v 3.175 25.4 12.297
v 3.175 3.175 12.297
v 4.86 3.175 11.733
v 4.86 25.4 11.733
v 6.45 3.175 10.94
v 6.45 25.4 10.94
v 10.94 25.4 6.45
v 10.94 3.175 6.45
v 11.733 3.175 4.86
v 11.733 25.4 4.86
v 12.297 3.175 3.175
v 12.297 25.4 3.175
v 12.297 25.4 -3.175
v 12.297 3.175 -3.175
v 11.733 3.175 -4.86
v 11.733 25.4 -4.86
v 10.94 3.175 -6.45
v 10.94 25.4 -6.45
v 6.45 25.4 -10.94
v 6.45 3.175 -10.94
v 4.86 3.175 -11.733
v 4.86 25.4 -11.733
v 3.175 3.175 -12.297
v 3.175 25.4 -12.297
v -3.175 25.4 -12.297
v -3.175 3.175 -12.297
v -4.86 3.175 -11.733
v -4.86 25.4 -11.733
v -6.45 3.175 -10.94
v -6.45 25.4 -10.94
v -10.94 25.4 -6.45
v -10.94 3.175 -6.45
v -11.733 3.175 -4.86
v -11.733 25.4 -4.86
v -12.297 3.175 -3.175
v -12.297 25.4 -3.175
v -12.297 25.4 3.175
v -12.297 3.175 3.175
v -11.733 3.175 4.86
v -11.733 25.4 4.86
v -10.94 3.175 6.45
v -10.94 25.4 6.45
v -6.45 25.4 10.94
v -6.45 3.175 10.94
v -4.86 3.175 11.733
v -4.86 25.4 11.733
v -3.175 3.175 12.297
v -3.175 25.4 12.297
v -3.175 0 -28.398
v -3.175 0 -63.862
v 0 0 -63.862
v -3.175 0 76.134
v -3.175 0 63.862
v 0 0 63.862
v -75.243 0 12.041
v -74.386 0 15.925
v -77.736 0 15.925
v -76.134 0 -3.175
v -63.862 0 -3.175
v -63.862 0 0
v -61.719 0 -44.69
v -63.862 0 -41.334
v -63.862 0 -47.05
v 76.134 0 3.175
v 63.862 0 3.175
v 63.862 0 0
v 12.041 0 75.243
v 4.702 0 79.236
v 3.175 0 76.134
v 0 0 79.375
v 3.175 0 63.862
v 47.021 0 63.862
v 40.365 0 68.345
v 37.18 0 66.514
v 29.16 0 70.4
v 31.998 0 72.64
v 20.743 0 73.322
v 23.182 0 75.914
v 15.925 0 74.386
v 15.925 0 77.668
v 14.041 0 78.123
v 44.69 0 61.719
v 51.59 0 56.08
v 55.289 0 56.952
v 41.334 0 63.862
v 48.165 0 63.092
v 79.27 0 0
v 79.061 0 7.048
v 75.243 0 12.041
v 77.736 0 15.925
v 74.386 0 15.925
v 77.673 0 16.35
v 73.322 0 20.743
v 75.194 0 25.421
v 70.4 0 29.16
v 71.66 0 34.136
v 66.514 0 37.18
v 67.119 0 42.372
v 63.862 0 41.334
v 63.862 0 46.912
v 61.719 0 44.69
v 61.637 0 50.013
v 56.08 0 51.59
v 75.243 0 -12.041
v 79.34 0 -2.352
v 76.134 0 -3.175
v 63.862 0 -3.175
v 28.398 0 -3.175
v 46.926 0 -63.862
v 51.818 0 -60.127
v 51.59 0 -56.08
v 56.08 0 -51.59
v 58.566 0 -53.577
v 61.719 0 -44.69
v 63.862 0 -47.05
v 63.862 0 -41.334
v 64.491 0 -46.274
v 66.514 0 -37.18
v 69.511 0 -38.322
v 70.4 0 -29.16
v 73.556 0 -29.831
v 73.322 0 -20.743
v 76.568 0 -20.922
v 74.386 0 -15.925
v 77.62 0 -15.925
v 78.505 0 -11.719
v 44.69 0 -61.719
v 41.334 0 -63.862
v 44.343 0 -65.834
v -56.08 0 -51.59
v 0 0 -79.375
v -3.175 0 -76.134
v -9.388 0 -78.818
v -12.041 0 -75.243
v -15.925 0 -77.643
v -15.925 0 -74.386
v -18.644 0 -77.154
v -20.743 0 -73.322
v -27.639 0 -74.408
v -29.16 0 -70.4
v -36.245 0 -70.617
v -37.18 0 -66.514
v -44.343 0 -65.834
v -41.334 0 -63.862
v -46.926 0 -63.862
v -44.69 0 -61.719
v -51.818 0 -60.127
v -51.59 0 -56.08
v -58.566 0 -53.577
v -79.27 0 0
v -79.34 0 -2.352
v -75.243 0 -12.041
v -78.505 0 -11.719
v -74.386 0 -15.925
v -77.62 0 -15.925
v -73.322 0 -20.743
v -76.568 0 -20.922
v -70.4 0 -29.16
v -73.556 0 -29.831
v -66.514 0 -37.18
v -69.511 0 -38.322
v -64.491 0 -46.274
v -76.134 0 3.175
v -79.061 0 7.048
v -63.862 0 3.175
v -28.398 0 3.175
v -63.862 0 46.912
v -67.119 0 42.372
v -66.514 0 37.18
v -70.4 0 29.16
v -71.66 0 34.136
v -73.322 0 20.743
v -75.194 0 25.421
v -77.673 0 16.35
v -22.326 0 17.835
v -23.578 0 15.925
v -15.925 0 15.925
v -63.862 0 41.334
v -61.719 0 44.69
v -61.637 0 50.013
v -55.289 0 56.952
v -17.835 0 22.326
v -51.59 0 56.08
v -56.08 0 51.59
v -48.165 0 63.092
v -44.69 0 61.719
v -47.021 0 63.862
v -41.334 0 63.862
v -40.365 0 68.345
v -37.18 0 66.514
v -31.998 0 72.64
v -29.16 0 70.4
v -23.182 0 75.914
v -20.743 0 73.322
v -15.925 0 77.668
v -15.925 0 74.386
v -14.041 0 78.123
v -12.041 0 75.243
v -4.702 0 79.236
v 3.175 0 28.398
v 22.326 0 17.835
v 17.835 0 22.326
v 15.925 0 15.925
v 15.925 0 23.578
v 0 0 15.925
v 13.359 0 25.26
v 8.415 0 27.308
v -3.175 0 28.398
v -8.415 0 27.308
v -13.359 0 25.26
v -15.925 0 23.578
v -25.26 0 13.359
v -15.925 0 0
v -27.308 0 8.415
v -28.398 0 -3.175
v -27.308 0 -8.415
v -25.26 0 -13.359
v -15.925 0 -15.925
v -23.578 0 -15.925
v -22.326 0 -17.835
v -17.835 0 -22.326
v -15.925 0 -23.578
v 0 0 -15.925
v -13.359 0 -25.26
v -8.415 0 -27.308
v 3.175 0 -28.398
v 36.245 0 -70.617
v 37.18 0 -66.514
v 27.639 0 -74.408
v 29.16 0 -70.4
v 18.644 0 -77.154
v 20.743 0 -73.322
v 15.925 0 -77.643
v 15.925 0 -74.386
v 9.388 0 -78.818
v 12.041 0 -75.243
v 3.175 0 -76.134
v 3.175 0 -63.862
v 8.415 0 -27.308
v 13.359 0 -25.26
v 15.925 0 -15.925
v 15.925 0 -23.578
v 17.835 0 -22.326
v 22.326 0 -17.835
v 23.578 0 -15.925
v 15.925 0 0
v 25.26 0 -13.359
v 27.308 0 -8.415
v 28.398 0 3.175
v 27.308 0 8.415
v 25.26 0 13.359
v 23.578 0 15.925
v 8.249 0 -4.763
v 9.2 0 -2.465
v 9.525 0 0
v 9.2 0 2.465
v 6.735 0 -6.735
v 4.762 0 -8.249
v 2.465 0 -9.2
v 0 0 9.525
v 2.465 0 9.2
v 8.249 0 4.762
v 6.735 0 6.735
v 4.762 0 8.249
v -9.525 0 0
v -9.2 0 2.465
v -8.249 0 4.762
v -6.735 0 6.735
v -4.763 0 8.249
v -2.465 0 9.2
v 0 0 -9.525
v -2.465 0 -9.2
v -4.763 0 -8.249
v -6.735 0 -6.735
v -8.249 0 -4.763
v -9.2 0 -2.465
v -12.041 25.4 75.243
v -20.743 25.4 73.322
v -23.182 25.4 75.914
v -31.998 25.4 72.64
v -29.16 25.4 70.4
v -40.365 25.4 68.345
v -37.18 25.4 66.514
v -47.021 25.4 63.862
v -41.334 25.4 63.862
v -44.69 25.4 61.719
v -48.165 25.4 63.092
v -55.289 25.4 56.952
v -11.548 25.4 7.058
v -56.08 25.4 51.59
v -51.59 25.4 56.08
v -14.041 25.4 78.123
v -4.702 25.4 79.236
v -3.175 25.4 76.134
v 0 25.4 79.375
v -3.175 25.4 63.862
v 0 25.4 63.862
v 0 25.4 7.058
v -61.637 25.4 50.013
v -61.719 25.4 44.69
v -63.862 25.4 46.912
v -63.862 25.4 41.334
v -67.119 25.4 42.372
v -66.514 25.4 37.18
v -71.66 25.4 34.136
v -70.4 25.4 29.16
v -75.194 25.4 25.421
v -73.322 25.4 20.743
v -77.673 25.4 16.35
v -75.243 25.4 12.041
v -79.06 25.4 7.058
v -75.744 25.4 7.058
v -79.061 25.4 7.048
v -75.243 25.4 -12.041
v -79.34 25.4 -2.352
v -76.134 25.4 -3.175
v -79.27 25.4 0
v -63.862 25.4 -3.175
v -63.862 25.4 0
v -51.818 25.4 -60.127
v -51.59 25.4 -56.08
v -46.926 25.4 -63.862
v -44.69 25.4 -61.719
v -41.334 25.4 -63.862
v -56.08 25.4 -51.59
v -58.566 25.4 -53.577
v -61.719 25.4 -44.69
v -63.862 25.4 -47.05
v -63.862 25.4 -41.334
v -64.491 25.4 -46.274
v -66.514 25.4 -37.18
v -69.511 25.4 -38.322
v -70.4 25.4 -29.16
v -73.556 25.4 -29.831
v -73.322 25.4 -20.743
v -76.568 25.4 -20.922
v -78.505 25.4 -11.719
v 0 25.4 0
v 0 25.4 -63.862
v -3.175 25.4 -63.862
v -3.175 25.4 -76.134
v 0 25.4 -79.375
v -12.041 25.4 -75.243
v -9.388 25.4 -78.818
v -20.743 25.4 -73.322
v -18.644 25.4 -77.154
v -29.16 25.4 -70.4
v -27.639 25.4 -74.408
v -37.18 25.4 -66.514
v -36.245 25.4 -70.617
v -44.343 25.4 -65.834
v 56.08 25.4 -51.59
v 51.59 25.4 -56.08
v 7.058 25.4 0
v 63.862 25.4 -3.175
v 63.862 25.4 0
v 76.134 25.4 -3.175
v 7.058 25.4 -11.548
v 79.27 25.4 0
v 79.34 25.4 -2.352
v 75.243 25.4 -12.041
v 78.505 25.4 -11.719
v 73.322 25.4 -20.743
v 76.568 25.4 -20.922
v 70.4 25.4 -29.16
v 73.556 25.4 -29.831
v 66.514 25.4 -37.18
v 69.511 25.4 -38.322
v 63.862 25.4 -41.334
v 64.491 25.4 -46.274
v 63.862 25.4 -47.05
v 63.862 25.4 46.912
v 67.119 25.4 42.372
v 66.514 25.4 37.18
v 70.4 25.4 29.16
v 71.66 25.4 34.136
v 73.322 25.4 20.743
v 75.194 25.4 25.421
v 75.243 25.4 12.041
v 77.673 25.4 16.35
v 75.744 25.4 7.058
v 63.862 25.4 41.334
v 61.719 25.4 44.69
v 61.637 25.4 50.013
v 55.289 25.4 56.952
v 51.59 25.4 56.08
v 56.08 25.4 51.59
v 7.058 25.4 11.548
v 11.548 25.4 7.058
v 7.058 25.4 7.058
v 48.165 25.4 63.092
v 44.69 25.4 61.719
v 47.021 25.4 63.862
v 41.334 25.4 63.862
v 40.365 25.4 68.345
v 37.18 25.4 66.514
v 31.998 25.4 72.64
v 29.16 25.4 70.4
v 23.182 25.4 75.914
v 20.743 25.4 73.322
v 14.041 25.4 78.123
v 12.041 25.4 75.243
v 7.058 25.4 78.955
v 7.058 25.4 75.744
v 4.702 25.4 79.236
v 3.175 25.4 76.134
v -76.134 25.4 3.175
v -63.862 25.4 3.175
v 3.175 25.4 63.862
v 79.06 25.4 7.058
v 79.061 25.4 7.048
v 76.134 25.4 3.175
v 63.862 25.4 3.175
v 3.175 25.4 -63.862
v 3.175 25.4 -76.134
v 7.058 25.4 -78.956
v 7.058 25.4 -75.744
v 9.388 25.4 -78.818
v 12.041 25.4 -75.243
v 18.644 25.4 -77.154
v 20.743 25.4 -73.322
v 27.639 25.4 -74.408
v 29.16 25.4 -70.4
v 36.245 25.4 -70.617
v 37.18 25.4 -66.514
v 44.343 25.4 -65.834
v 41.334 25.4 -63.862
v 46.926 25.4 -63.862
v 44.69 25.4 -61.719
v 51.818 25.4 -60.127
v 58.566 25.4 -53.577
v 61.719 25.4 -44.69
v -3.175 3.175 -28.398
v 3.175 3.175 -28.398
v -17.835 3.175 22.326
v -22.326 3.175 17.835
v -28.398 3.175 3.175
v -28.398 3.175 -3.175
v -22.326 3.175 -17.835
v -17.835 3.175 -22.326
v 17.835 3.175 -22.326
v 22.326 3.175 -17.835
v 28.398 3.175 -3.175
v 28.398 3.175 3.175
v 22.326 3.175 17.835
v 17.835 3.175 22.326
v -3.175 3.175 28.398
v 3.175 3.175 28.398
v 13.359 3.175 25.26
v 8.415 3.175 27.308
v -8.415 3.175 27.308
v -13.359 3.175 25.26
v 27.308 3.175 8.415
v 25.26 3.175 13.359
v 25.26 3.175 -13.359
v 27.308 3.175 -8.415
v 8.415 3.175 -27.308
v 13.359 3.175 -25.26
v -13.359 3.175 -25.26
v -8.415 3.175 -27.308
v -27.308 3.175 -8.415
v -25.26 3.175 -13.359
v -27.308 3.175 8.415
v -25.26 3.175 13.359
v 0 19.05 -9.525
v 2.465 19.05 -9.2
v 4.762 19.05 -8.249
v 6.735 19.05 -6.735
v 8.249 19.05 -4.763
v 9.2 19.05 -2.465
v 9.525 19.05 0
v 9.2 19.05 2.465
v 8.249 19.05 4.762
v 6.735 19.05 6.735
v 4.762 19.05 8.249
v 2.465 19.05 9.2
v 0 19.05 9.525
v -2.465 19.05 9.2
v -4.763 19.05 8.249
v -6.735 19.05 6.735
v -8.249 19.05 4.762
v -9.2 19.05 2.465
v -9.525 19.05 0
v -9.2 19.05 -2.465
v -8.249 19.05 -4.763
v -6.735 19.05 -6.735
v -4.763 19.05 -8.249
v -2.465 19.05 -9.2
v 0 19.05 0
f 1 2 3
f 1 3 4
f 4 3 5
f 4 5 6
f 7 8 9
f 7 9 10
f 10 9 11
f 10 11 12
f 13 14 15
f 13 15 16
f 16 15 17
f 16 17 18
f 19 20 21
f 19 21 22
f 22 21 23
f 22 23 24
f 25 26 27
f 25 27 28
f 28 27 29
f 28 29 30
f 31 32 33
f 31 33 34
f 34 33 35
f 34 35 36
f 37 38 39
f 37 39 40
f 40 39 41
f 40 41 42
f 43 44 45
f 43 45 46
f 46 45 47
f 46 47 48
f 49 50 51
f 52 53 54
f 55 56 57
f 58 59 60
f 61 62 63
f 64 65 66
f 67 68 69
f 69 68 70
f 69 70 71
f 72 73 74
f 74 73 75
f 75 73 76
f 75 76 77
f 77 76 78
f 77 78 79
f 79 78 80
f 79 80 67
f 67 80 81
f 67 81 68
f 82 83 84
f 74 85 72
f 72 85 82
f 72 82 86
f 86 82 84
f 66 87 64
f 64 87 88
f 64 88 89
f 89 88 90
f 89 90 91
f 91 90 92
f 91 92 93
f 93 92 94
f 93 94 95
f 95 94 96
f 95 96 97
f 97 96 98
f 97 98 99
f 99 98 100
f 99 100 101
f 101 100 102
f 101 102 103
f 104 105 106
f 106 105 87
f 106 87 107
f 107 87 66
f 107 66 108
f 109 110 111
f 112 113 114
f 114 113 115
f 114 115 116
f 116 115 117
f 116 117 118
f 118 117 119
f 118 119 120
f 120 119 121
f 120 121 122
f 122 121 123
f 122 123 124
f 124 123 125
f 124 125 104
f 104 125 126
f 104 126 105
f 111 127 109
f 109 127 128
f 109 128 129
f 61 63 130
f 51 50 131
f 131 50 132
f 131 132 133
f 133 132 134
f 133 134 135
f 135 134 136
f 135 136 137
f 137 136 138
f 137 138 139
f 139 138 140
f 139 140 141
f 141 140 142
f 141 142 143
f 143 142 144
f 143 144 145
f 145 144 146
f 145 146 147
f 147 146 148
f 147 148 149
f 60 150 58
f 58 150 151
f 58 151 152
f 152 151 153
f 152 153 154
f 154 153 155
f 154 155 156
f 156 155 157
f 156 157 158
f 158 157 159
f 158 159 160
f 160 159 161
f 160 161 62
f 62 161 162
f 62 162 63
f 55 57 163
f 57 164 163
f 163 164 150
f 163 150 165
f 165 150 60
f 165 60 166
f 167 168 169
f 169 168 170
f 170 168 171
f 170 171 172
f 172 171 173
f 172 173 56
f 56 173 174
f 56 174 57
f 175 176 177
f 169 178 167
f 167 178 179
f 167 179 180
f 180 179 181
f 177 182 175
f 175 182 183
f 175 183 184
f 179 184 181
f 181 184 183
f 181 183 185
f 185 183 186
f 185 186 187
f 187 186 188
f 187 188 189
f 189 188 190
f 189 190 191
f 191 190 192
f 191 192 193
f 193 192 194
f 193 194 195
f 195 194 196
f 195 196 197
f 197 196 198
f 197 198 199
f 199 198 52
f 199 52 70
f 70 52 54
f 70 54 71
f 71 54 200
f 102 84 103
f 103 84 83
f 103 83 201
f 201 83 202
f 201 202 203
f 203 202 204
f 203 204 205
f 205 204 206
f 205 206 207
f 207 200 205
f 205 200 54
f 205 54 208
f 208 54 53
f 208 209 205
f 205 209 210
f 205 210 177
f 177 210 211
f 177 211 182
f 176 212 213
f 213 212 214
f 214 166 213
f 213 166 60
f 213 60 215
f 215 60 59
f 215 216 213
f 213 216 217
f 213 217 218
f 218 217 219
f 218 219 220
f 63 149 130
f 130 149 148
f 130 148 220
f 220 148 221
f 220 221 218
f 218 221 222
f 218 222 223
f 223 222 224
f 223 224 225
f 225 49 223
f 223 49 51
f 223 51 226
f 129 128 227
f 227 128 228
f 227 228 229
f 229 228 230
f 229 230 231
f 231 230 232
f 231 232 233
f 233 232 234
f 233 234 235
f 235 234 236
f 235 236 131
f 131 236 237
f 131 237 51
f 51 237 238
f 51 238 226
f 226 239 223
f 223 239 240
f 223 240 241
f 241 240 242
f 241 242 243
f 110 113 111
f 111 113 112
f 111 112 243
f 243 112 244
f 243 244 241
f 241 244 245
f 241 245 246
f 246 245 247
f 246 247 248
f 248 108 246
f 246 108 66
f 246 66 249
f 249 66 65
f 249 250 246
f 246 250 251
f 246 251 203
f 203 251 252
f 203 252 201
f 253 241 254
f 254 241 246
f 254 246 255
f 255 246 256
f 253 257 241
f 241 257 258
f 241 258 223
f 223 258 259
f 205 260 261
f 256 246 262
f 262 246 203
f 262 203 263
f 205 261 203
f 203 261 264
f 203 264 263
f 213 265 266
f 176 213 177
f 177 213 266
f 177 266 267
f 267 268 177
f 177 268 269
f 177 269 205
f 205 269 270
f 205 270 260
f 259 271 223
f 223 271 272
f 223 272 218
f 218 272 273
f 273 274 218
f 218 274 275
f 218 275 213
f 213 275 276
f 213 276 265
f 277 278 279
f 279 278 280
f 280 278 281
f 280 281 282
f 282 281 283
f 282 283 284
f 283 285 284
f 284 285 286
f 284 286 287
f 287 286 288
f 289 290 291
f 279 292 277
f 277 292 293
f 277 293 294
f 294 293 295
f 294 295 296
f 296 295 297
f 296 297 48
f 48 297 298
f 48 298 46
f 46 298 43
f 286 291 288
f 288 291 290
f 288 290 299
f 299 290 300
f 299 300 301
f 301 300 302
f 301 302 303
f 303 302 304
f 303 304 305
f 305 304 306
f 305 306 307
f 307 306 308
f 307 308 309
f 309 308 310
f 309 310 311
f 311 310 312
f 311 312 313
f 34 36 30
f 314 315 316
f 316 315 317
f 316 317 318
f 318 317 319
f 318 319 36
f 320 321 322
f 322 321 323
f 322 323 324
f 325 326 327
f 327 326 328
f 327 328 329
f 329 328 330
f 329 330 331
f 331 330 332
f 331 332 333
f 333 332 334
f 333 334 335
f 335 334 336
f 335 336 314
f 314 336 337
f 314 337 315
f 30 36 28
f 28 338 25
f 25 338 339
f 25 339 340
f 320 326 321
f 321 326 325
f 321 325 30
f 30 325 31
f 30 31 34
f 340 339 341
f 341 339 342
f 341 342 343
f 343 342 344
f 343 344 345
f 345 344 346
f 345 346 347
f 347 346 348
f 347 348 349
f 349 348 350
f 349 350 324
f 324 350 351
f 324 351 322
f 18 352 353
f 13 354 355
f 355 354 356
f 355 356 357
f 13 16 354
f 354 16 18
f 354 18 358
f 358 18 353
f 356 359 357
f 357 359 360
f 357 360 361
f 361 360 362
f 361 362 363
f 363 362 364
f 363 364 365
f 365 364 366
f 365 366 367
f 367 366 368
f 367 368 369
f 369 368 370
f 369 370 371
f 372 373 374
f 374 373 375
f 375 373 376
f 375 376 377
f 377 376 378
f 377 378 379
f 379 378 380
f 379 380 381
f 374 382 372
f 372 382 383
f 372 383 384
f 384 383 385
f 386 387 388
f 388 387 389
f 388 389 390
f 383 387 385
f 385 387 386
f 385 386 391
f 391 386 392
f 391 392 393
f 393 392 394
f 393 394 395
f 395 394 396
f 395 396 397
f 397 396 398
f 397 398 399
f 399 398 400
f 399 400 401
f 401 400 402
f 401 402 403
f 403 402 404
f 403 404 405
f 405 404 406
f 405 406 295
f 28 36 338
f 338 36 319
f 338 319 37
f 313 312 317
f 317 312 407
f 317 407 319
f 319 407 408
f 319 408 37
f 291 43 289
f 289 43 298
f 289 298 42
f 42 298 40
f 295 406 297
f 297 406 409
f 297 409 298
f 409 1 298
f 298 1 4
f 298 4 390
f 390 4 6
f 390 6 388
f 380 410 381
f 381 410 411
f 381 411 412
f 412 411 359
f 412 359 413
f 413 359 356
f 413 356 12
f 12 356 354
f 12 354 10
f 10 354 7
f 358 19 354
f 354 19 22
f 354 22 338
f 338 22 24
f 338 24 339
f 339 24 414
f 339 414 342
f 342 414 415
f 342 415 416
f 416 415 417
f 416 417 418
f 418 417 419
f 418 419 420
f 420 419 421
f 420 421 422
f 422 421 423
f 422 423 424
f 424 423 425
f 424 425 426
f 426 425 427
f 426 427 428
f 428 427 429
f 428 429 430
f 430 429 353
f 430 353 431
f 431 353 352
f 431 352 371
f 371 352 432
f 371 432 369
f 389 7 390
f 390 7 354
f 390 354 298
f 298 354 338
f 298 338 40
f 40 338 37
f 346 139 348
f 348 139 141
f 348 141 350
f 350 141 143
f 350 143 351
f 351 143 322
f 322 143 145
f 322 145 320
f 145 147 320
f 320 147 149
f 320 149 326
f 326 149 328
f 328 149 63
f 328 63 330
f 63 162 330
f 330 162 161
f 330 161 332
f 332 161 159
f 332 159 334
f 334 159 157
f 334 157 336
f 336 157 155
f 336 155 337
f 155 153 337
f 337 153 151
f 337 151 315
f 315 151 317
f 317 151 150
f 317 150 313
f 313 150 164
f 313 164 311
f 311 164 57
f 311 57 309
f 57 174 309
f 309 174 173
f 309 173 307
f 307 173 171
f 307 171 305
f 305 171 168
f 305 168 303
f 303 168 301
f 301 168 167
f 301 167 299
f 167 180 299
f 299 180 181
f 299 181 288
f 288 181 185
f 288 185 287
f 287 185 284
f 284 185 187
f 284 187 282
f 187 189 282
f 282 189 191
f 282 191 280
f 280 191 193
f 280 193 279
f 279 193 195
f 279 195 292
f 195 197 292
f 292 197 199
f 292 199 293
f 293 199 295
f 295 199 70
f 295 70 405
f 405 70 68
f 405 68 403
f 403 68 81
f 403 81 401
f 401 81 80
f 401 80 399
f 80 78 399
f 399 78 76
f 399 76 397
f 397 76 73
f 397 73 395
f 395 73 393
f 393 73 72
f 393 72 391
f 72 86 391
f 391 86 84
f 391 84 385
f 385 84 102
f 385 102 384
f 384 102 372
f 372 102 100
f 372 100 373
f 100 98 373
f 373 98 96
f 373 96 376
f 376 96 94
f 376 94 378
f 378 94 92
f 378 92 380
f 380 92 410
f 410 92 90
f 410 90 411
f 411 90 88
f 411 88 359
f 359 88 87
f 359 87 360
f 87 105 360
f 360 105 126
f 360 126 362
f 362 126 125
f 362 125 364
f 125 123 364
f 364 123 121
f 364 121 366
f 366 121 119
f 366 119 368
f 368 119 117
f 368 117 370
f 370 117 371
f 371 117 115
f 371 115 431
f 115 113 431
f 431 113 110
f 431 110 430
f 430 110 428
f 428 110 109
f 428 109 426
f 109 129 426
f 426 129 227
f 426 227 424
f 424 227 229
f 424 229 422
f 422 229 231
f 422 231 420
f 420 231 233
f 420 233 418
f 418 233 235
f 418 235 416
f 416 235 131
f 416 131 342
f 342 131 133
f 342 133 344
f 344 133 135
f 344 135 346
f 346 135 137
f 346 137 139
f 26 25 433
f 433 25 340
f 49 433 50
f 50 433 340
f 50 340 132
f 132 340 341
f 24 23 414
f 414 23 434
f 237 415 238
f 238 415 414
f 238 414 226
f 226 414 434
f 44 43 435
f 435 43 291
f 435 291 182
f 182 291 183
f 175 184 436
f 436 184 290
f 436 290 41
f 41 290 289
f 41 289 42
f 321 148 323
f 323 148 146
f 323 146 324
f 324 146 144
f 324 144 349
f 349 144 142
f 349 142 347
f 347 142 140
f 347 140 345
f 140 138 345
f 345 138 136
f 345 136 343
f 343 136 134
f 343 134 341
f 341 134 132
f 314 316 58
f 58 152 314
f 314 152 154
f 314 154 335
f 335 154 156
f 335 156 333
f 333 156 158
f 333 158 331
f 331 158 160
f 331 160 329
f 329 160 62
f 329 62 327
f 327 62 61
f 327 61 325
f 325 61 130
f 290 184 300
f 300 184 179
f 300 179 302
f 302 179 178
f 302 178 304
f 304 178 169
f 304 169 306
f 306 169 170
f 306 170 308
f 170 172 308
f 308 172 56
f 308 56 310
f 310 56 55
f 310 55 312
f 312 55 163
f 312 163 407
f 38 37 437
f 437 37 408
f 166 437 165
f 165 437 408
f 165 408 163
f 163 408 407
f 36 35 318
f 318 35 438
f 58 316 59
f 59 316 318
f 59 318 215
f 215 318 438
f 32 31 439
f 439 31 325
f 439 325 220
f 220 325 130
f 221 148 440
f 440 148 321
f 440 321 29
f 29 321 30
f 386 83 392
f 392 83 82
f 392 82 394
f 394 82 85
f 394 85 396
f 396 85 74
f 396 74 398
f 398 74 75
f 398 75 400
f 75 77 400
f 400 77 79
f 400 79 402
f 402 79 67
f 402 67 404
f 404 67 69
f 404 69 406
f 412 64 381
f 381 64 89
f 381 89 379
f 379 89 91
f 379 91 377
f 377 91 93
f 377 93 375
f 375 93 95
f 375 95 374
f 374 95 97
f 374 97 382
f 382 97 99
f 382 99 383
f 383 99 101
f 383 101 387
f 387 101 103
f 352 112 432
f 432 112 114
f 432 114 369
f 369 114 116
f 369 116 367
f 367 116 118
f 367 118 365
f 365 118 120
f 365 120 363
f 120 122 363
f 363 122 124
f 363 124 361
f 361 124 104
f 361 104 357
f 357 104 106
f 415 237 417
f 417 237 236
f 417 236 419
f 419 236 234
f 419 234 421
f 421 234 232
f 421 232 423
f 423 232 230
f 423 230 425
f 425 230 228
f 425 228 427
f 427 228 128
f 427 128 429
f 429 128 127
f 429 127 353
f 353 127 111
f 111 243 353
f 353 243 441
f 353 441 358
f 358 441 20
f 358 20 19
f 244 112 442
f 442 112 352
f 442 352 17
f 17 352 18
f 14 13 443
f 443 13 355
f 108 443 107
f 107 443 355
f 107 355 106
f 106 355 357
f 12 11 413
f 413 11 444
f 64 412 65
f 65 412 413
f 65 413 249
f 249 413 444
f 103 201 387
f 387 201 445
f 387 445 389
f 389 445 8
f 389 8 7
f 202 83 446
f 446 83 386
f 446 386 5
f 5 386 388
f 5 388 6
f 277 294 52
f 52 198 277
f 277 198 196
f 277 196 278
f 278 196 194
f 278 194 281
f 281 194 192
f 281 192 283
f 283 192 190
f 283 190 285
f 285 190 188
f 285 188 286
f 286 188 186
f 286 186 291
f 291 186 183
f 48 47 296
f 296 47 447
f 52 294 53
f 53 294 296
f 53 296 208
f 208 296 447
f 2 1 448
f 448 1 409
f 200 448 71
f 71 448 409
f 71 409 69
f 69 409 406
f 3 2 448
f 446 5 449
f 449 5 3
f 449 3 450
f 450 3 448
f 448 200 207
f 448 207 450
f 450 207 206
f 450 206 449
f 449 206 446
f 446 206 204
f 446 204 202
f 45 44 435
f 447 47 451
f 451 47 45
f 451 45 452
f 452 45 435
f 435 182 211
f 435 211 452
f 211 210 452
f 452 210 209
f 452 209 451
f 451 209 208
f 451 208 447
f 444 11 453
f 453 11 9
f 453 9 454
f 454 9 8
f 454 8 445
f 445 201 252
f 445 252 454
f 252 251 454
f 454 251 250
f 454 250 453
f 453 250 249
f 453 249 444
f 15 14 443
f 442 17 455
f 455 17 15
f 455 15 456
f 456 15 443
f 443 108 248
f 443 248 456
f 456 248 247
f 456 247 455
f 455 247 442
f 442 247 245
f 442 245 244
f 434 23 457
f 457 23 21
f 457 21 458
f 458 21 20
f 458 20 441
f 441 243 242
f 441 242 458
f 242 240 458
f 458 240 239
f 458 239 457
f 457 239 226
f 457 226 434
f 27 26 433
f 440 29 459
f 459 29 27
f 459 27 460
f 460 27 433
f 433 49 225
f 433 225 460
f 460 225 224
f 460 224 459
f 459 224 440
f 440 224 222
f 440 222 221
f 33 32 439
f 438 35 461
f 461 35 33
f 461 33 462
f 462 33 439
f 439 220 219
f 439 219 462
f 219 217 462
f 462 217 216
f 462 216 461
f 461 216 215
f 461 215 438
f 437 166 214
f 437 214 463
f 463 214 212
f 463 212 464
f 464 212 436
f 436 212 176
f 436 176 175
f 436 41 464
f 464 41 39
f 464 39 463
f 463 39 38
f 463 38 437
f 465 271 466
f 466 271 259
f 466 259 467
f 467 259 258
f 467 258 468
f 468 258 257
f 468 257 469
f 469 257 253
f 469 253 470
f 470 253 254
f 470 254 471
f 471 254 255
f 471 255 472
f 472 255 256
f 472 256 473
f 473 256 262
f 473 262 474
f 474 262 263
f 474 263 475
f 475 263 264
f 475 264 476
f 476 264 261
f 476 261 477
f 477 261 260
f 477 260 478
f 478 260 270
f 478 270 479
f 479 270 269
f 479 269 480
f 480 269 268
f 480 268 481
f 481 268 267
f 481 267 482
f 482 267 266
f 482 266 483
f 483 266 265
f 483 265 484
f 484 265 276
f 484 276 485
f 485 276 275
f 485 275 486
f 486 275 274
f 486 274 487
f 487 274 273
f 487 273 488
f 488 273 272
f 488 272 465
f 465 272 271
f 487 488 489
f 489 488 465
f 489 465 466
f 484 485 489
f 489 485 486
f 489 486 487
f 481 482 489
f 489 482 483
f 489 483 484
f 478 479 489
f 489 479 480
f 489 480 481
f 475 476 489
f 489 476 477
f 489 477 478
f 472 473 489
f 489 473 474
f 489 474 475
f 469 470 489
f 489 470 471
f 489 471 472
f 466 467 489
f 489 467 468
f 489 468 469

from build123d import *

# Parameters (mm, degrees)
SKETCH1_R           = 79.375
BOSS_EXTRUDE1_DEPTH = 25.4
SKETCH2_R           = 28.575
BOSS_EXTRUDE2_DEPTH = 3.175
SKETCH3_R           = 9.525
CUT_EXTRUDE1_DEPTH  = 19.05


with BuildPart() as part:
    # Sketch1 → Boss-Extrude1 (new body)
    with BuildSketch(Plane(origin=(0, 0, 0), x_dir=(1, 0, 0), z_dir=(0, 1, 0))):
        with Locations(Location((0, 0, 0), (0, 0, 270))):
            Circle(SKETCH1_R)
        with BuildLine():
            ThreePointArc((12.296722124, 3.175), (11.733270063, 4.860079591), (10.940159631, 6.45003157))
            Line((10.940159631, 6.45003157), (56.079808271, 51.589680211))
            ThreePointArc((56.079808271, 51.589680211), (70.399620377, 29.160477546), (76.133825433, 3.175))
            Line((76.133825433, 3.175), (12.296722124, 3.175))
        make_face(mode=Mode.SUBTRACT)
        with BuildLine():
            Line((51.589680211, 56.079808271), (6.45003157, 10.940159631))
            ThreePointArc((6.45003157, 10.940159631), (4.860079591, 11.733270063), (3.175, 12.296722124))
            Line((3.175, 12.296722124), (3.175, 76.133825433))
            ThreePointArc((3.175, 76.133825433), (29.160477546, 70.399620377), (51.589680211, 56.079808271))
        make_face(mode=Mode.SUBTRACT)
        with BuildLine():
            Line((-3.175, 76.133825433), (-3.175, 12.296722124))
            ThreePointArc((-3.175, 12.296722124), (-4.860079591, 11.733270063), (-6.45003157, 10.940159631))
            Line((-6.45003157, 10.940159631), (-51.589680211, 56.079808271))
            ThreePointArc((-51.589680211, 56.079808271), (-29.160477546, 70.399620377), (-3.175, 76.133825433))
        make_face(mode=Mode.SUBTRACT)
        with BuildLine():
            Line((-56.079808271, 51.589680211), (-10.940159631, 6.45003157))
            ThreePointArc((-10.940159631, 6.45003157), (-11.733270063, 4.860079591), (-12.296722124, 3.175))
            Line((-12.296722124, 3.175), (-76.133825433, 3.175))
            ThreePointArc((-76.133825433, 3.175), (-70.399620377, 29.160477546), (-56.079808271, 51.589680211))
        make_face(mode=Mode.SUBTRACT)
        with BuildLine():
            Line((-76.133825433, -3.175), (-12.296722124, -3.175))
            ThreePointArc((-12.296722124, -3.175), (-11.733270063, -4.860079591), (-10.940159631, -6.45003157))
            Line((-10.940159631, -6.45003157), (-56.079808271, -51.589680211))
            ThreePointArc((-56.079808271, -51.589680211), (-70.399620377, -29.160477546), (-76.133825433, -3.175))
        make_face(mode=Mode.SUBTRACT)
        with BuildLine():
            Line((-51.589680211, -56.079808271), (-6.45003157, -10.940159631))
            ThreePointArc((-6.45003157, -10.940159631), (-4.860079591, -11.733270063), (-3.175, -12.296722124))
            Line((-3.175, -12.296722124), (-3.175, -76.133825433))
            ThreePointArc((-3.175, -76.133825433), (-29.160477546, -70.399620377), (-51.589680211, -56.079808271))
        make_face(mode=Mode.SUBTRACT)
        with BuildLine():
            Line((3.175, -76.133825433), (3.175, -12.296722124))
            ThreePointArc((3.175, -12.296722124), (4.860079591, -11.733270063), (6.45003157, -10.940159631))
            Line((6.45003157, -10.940159631), (51.589680211, -56.079808271))
            ThreePointArc((51.589680211, -56.079808271), (29.160477546, -70.399620377), (3.175, -76.133825433))
        make_face(mode=Mode.SUBTRACT)
        with BuildLine():
            Line((56.079808271, -51.589680211), (10.940159631, -6.45003157))
            ThreePointArc((10.940159631, -6.45003157), (11.733270063, -4.860079591), (12.296722124, -3.175))
            Line((12.296722124, -3.175), (76.133825433, -3.175))
            ThreePointArc((76.133825433, -3.175), (70.399620377, -29.160477546), (56.079808271, -51.589680211))
        make_face(mode=Mode.SUBTRACT)
    extrude(amount=BOSS_EXTRUDE1_DEPTH)

    # Sketch2 → Boss-Extrude2 (add)
    with BuildSketch(Plane.XZ):
        Circle(SKETCH2_R)
    extrude(amount=-BOSS_EXTRUDE2_DEPTH)

    # Sketch3 → Cut-Extrude1 (cut)
    with BuildSketch(Plane.XZ):
        with Locations(Location((0, 0, 0), (0, 0, 270))):
            Circle(SKETCH3_R)
    extrude(amount=-CUT_EXTRUDE1_DEPTH, mode=Mode.SUBTRACT)


solid = part.part
